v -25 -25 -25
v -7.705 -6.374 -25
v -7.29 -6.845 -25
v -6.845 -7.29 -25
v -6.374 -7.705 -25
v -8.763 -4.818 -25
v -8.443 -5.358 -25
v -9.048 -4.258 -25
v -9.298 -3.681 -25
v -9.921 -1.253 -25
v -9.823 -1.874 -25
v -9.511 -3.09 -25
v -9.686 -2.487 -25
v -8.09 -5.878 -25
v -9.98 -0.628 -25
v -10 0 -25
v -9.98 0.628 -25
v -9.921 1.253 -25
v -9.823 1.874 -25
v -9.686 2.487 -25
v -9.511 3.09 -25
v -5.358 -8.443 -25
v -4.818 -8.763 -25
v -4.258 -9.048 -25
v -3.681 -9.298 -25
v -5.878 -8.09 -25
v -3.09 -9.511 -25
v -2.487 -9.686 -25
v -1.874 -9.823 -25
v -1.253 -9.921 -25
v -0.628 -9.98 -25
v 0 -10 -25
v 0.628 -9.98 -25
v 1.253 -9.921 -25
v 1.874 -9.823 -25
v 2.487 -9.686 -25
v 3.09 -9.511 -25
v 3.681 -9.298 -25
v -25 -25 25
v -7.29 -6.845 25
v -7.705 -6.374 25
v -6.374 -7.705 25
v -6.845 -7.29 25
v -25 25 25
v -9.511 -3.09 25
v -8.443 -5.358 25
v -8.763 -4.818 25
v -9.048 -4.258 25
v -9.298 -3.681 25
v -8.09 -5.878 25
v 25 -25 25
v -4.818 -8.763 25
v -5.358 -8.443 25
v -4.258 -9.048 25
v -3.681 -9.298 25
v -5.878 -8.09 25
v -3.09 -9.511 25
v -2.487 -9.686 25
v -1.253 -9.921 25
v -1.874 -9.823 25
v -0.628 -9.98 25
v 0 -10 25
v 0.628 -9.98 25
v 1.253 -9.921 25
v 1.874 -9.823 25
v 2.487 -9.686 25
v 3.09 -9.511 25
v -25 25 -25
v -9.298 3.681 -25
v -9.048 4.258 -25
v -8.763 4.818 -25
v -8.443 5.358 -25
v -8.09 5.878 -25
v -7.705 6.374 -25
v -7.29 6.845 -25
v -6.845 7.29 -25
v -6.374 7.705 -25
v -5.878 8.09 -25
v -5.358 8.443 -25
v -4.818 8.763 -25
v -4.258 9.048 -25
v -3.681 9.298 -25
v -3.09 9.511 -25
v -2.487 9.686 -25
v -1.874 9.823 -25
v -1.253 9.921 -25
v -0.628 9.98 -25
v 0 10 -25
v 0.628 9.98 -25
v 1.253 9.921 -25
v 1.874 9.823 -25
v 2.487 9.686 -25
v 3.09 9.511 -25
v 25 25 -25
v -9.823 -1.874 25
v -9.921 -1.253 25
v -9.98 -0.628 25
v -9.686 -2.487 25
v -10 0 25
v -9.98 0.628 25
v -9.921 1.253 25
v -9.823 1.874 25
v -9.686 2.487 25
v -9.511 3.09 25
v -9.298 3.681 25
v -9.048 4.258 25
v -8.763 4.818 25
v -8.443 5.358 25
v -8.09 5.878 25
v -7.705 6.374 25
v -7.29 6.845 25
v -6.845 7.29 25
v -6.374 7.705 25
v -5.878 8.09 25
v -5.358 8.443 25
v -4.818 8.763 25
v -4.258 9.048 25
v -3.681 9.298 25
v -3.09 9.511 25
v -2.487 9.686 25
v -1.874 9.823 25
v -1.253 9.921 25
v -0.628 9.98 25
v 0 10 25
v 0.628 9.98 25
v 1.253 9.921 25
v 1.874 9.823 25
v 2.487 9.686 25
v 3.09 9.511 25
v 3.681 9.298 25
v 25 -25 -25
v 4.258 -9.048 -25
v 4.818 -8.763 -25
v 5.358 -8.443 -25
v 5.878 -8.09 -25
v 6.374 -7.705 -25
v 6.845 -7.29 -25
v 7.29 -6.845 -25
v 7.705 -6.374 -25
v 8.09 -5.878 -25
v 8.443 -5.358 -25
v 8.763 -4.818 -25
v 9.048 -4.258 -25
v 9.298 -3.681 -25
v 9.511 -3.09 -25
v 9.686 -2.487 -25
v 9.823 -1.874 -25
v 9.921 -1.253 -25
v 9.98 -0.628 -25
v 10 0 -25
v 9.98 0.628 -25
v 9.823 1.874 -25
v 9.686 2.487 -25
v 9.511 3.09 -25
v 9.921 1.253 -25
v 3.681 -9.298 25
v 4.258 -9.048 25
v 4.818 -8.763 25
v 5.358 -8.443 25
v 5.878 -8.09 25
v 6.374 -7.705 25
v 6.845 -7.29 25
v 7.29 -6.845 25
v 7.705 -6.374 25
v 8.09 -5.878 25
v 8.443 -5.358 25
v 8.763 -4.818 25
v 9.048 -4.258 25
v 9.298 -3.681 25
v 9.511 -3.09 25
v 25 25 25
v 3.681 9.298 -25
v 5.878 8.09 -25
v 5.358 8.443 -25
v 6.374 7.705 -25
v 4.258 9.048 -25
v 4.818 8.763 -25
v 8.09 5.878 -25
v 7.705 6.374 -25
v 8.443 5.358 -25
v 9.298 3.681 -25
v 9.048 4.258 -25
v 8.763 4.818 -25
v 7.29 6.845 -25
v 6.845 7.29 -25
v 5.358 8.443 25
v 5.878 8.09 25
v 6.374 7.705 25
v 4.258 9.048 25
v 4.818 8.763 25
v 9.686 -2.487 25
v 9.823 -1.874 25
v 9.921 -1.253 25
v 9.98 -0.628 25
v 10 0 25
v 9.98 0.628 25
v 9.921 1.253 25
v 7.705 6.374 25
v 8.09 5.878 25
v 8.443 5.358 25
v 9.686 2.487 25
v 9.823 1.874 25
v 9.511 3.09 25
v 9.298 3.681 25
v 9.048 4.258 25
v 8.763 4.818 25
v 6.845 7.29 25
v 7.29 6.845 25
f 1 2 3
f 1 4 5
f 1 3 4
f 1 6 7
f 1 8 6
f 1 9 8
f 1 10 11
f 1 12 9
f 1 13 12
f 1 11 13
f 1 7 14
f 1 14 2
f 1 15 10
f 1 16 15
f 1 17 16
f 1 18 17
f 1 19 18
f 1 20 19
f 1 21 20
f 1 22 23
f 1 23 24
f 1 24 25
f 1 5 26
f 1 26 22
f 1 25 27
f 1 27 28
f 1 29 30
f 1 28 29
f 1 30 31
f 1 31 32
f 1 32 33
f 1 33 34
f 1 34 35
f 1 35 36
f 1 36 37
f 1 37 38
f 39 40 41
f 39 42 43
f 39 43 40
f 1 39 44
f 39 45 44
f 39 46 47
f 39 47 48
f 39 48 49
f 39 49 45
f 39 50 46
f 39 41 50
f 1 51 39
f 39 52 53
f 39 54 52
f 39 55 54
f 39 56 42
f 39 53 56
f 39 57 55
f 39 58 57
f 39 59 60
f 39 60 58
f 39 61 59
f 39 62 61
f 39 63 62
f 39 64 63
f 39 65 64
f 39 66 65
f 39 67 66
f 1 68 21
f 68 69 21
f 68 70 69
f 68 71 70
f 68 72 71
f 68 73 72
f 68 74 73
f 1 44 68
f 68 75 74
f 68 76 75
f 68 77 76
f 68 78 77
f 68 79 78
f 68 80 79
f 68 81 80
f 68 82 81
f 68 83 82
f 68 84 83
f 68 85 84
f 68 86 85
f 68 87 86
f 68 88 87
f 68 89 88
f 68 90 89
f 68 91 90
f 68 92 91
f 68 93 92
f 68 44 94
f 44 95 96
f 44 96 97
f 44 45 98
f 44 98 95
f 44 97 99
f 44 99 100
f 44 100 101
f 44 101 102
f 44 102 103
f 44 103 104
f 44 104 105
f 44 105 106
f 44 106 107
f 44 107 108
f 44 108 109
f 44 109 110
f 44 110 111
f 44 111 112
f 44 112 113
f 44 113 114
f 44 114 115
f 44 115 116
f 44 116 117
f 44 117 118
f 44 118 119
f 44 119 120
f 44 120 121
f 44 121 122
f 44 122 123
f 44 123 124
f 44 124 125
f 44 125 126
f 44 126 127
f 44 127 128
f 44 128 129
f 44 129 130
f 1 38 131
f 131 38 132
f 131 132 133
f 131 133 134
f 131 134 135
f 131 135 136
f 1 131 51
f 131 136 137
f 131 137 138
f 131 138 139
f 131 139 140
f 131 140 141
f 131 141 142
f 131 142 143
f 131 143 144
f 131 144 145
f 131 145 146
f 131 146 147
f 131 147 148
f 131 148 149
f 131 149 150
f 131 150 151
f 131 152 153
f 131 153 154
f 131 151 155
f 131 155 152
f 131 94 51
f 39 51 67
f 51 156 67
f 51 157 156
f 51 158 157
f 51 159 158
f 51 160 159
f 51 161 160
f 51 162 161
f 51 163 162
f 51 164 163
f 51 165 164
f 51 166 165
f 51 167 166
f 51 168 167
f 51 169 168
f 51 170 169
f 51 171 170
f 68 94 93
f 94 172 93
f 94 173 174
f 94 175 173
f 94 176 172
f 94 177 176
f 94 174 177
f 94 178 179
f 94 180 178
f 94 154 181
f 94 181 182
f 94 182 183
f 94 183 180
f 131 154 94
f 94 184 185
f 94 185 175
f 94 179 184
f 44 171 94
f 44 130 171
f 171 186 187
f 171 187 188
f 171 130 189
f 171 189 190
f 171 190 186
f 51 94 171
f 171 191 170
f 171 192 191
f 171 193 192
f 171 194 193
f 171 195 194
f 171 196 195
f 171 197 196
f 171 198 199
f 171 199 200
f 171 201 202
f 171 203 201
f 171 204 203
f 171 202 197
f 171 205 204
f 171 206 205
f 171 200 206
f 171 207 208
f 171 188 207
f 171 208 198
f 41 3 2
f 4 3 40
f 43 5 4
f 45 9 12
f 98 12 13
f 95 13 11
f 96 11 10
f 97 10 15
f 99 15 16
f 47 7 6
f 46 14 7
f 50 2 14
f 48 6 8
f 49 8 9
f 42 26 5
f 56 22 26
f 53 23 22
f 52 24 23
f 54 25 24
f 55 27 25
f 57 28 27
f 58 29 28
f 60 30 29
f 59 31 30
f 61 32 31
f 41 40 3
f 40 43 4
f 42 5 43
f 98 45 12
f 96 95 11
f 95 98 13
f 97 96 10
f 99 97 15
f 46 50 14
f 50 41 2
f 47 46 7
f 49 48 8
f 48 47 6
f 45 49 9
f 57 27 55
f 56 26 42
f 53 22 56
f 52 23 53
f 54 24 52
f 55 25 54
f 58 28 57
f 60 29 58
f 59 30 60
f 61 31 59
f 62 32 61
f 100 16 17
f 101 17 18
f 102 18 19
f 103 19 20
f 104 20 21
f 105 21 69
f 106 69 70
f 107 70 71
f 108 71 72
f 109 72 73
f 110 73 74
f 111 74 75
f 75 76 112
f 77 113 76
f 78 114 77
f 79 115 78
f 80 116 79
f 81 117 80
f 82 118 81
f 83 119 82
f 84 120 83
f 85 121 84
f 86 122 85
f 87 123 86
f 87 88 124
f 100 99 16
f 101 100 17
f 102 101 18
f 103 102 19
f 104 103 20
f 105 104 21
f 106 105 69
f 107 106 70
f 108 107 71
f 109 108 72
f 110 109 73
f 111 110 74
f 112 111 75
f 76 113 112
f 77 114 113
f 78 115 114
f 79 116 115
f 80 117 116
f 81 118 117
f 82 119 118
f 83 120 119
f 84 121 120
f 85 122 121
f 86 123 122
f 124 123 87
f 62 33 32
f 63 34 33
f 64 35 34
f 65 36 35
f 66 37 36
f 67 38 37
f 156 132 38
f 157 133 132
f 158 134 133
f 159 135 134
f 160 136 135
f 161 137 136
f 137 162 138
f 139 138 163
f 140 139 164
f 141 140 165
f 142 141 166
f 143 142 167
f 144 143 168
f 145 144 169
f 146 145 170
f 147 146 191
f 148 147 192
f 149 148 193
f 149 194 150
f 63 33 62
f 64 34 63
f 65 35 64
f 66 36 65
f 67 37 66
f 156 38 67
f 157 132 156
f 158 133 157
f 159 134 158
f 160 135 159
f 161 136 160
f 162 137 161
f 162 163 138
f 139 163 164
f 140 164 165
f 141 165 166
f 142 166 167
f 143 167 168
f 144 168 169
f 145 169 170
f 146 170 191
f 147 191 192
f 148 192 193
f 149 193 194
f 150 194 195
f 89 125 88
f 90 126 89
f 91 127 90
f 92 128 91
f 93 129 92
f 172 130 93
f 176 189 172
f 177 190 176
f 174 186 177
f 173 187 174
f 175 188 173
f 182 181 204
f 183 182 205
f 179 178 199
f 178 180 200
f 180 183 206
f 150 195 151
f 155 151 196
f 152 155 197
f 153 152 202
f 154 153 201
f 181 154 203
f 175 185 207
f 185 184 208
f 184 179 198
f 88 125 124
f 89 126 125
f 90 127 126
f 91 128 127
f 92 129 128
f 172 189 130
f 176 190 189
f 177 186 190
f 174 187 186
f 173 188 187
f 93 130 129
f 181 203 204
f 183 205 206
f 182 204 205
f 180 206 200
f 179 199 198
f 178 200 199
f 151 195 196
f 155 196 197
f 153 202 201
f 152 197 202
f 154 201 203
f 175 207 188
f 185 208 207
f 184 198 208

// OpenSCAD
difference() {
    cube([50, 50, 50], center=true);
    cylinder(h=50.1, d=20, center=true, $fn=100);
}
